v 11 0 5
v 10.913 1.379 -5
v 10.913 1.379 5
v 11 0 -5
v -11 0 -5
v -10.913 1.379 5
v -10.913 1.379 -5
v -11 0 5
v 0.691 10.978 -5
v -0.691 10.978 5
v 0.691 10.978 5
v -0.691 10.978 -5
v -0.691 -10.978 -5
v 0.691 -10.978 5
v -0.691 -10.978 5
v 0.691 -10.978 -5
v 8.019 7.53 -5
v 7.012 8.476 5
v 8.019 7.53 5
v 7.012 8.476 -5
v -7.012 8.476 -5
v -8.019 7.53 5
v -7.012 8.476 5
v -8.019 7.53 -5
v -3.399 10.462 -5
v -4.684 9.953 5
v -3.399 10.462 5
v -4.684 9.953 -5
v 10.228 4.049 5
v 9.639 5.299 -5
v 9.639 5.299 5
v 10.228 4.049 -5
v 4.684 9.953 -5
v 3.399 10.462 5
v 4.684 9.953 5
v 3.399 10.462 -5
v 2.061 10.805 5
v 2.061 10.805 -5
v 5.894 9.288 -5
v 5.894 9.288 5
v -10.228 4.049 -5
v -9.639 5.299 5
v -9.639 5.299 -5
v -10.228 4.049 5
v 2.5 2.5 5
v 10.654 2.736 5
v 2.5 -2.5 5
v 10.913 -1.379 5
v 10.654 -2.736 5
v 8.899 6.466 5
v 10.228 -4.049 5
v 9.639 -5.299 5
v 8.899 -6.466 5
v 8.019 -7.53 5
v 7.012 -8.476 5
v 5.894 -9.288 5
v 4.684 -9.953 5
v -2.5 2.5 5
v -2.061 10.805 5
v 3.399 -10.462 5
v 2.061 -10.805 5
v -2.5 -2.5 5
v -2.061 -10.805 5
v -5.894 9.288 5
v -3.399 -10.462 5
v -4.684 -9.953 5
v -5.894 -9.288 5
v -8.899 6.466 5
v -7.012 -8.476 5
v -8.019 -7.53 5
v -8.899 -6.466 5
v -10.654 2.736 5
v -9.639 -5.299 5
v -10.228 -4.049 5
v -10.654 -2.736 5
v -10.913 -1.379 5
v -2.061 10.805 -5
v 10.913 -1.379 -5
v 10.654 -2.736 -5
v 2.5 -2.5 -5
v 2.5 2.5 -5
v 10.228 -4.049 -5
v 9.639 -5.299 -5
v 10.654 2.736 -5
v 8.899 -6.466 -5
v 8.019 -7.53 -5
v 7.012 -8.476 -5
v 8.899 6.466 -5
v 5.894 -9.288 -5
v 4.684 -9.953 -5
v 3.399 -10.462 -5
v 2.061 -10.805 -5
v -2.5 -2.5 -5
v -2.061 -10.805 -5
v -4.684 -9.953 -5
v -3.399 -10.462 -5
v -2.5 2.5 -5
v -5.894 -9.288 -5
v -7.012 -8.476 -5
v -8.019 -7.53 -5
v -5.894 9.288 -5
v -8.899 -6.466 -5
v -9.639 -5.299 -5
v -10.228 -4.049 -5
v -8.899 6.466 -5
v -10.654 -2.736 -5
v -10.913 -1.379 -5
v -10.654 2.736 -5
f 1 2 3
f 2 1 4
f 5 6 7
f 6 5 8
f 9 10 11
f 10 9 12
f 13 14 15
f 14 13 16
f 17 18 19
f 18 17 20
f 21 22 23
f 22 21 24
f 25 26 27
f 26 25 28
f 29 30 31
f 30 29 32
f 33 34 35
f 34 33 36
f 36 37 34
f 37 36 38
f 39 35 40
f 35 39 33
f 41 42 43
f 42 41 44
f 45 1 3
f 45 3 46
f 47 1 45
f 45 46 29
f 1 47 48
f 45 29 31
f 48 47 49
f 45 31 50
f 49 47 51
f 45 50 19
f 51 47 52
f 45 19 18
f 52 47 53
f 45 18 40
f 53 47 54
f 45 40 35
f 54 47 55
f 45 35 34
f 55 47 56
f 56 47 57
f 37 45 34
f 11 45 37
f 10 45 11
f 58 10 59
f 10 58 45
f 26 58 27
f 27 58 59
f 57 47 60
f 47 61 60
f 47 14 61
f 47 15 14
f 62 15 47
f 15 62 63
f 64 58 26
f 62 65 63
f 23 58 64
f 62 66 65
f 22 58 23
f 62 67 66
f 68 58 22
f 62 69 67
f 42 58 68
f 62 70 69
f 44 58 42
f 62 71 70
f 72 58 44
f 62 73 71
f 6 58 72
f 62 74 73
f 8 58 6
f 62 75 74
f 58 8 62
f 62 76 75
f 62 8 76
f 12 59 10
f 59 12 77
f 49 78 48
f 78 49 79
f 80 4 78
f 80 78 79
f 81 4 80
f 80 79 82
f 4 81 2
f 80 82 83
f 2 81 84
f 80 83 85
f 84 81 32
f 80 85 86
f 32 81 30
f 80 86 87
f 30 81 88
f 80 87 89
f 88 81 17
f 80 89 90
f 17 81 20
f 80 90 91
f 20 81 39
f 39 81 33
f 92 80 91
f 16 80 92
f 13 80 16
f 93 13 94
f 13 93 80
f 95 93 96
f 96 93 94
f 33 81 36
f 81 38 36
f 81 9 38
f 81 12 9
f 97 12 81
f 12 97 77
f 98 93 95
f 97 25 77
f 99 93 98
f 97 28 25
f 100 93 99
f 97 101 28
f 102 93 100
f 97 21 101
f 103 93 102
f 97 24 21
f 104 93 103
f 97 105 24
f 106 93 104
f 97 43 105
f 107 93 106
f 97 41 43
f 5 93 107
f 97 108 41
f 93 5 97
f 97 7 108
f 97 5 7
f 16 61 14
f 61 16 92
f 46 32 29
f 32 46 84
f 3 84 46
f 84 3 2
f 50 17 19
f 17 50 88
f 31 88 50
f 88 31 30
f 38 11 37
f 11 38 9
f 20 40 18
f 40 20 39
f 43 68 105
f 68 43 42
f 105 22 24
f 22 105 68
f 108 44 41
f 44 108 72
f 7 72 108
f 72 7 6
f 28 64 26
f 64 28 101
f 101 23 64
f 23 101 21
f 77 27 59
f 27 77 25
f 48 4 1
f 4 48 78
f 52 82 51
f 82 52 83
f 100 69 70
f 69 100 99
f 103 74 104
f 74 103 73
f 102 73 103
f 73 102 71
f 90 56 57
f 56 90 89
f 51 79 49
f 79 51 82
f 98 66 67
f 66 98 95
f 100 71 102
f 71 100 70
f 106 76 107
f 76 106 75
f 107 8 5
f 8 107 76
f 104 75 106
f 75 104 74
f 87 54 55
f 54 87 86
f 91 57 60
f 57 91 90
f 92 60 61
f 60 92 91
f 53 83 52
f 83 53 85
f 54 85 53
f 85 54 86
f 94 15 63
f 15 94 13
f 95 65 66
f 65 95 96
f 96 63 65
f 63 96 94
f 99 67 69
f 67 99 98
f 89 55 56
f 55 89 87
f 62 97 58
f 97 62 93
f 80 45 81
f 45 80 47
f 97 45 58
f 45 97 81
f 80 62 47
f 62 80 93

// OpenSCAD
$fn=50;

difference() {
    cylinder(10, d=22, center=true);
    cube([5,5,10], center=true);
}
